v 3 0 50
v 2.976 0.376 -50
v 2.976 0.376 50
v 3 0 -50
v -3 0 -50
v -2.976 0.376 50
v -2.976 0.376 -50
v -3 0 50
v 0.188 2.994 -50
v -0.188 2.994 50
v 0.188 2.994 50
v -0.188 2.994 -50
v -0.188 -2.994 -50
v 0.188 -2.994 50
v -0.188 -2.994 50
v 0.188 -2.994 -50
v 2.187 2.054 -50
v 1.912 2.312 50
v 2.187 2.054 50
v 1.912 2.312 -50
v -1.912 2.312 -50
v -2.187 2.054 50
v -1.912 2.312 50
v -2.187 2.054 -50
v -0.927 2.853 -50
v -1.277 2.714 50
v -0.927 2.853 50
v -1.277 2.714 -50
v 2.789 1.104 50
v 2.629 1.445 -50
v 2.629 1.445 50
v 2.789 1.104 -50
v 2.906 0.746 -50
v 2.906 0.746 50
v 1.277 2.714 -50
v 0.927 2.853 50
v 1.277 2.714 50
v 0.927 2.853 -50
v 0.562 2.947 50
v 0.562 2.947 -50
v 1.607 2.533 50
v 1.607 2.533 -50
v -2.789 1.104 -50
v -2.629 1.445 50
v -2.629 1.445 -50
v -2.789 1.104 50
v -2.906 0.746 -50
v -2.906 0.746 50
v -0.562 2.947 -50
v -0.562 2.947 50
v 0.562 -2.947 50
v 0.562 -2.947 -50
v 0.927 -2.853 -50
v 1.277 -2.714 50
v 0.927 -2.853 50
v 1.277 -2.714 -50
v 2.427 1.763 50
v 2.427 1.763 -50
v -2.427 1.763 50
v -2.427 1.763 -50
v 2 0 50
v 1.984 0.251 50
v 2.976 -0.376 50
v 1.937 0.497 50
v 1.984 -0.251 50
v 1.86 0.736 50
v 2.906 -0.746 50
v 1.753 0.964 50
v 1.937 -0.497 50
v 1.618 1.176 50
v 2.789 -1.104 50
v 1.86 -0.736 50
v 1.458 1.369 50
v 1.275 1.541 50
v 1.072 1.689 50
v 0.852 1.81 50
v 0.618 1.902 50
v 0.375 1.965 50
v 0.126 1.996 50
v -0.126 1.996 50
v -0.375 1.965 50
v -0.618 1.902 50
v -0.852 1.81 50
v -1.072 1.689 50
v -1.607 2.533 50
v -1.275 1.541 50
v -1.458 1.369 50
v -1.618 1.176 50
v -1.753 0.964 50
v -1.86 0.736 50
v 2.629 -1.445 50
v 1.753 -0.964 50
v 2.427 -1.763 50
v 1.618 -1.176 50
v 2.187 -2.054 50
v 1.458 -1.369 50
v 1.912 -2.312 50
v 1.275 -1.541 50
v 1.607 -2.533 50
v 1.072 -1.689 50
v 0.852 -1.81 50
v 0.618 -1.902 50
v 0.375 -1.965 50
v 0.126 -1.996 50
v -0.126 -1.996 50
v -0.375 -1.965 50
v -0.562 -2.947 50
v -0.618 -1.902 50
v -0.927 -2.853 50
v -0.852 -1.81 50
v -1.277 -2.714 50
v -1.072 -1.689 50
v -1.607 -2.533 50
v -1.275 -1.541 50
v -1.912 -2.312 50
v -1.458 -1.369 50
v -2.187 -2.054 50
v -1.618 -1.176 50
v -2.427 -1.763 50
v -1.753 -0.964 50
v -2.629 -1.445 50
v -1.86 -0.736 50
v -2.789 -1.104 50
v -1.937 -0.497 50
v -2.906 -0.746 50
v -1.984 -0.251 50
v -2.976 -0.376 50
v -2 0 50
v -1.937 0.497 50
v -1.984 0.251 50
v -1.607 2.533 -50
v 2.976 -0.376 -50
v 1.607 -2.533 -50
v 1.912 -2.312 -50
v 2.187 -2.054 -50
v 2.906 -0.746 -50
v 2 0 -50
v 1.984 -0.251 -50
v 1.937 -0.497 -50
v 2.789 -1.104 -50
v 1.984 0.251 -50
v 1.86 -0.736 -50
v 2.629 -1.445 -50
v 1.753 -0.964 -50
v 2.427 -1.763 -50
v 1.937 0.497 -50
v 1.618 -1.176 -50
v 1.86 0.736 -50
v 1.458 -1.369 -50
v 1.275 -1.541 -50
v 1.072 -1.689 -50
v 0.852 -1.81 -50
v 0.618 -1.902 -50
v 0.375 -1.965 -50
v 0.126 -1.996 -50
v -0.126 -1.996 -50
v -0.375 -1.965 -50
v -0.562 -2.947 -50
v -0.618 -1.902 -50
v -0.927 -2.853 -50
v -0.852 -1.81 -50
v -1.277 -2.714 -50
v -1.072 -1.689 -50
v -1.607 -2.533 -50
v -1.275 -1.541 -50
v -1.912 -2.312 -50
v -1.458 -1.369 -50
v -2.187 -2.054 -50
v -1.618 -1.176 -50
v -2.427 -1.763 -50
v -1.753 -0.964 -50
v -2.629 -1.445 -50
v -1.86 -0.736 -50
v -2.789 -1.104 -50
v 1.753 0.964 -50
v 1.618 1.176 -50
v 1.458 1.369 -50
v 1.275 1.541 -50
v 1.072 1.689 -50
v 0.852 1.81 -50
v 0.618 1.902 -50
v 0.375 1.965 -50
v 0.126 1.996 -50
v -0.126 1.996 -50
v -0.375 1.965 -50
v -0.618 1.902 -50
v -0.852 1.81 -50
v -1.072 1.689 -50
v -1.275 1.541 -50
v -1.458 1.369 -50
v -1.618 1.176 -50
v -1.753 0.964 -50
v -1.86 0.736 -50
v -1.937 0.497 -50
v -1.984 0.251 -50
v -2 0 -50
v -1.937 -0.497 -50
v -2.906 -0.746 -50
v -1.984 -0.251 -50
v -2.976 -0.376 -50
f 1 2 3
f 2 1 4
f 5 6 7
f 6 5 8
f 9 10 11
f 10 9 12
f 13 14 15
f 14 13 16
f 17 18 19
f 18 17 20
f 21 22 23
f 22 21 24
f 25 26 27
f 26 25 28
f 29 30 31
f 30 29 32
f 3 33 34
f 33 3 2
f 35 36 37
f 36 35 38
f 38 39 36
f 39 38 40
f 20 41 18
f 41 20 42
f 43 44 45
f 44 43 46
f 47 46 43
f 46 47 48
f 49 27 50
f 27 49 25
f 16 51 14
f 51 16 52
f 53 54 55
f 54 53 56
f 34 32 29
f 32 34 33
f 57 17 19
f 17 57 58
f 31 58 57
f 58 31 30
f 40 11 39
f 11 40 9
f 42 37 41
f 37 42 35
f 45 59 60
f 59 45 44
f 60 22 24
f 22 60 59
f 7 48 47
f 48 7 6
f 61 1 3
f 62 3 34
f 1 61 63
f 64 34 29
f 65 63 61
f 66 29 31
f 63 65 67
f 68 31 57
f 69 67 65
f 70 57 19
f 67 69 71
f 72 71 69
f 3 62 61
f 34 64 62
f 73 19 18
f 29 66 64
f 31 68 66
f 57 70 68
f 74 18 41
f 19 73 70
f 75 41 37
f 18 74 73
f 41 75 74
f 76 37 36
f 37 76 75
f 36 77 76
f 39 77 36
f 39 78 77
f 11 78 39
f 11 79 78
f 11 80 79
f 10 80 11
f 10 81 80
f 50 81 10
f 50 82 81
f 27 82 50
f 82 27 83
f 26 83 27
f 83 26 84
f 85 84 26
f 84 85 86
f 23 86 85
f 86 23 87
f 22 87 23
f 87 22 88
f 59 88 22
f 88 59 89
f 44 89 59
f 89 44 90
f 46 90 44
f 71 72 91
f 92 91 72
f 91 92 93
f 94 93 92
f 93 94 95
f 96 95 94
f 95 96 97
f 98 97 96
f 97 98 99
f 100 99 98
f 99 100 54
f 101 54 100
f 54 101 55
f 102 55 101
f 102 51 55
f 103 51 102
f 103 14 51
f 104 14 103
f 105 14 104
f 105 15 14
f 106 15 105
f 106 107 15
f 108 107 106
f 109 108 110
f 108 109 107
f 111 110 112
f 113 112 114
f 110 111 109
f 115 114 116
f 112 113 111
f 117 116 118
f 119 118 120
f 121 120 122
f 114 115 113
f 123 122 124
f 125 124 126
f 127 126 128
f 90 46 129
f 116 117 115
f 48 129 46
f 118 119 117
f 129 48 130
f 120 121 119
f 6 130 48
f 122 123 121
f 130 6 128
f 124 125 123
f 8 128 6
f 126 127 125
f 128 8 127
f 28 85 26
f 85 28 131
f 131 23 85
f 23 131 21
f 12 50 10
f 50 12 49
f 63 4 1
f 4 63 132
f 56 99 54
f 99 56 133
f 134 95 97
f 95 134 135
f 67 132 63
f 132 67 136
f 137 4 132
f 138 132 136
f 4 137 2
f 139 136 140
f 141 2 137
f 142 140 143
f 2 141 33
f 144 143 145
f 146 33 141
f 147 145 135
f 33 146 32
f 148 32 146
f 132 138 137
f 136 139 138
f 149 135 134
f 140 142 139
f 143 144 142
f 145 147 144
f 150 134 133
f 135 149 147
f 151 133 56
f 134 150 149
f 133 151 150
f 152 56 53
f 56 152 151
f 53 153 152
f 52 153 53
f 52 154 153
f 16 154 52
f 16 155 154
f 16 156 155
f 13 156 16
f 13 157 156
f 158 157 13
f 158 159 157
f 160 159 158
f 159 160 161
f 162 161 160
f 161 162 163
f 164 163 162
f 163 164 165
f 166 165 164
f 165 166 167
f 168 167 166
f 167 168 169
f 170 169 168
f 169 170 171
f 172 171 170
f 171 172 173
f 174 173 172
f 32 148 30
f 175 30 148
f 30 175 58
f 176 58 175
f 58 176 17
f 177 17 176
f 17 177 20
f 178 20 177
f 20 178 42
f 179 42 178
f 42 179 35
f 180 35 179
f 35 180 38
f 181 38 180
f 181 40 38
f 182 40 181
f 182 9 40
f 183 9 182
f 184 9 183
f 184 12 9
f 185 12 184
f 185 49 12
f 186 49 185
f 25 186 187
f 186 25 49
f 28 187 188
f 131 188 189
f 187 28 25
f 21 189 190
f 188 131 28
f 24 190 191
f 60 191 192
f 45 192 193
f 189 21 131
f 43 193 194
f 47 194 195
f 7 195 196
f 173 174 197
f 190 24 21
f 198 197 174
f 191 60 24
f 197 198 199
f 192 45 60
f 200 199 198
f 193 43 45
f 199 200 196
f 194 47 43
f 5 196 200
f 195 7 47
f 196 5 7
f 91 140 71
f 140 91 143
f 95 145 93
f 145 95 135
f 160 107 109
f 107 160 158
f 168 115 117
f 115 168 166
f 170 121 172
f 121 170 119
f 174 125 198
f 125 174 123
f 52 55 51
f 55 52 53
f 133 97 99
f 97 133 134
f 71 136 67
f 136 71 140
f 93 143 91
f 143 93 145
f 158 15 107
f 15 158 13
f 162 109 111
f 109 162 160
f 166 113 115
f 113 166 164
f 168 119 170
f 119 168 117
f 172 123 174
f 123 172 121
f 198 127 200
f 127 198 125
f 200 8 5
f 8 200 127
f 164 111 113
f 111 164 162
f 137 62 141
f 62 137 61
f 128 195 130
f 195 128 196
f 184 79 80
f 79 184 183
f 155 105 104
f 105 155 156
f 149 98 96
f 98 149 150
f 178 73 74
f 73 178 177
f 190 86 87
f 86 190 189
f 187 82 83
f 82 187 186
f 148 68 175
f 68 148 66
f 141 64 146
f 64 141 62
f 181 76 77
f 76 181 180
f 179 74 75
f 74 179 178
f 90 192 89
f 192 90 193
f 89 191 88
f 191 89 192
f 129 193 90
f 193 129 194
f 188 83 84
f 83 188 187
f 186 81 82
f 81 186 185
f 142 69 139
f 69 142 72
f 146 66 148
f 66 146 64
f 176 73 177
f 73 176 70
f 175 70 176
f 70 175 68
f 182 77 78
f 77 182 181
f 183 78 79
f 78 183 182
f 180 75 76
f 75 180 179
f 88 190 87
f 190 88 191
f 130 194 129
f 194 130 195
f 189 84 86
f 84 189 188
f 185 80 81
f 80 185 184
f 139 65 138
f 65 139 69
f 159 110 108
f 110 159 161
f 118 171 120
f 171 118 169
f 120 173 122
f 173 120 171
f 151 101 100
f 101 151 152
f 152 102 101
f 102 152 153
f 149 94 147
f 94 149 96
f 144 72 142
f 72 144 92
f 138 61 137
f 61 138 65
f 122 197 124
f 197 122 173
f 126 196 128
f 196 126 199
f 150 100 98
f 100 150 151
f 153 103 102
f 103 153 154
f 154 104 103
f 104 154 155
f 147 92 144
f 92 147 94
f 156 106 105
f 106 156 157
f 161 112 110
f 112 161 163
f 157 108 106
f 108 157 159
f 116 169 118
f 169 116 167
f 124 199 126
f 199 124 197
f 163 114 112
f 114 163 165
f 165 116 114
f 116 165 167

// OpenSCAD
$fn = 50;


difference() {
	union() {
		translate(v = [0, 0, -50.0000000000]) {
			cylinder(h = 100, r = 3.0000000000);
		}
	}
	union() {
		translate(v = [0, 0, -100.0000000000]) {
			cylinder(h = 200, r = 2);
		}
	}
}
